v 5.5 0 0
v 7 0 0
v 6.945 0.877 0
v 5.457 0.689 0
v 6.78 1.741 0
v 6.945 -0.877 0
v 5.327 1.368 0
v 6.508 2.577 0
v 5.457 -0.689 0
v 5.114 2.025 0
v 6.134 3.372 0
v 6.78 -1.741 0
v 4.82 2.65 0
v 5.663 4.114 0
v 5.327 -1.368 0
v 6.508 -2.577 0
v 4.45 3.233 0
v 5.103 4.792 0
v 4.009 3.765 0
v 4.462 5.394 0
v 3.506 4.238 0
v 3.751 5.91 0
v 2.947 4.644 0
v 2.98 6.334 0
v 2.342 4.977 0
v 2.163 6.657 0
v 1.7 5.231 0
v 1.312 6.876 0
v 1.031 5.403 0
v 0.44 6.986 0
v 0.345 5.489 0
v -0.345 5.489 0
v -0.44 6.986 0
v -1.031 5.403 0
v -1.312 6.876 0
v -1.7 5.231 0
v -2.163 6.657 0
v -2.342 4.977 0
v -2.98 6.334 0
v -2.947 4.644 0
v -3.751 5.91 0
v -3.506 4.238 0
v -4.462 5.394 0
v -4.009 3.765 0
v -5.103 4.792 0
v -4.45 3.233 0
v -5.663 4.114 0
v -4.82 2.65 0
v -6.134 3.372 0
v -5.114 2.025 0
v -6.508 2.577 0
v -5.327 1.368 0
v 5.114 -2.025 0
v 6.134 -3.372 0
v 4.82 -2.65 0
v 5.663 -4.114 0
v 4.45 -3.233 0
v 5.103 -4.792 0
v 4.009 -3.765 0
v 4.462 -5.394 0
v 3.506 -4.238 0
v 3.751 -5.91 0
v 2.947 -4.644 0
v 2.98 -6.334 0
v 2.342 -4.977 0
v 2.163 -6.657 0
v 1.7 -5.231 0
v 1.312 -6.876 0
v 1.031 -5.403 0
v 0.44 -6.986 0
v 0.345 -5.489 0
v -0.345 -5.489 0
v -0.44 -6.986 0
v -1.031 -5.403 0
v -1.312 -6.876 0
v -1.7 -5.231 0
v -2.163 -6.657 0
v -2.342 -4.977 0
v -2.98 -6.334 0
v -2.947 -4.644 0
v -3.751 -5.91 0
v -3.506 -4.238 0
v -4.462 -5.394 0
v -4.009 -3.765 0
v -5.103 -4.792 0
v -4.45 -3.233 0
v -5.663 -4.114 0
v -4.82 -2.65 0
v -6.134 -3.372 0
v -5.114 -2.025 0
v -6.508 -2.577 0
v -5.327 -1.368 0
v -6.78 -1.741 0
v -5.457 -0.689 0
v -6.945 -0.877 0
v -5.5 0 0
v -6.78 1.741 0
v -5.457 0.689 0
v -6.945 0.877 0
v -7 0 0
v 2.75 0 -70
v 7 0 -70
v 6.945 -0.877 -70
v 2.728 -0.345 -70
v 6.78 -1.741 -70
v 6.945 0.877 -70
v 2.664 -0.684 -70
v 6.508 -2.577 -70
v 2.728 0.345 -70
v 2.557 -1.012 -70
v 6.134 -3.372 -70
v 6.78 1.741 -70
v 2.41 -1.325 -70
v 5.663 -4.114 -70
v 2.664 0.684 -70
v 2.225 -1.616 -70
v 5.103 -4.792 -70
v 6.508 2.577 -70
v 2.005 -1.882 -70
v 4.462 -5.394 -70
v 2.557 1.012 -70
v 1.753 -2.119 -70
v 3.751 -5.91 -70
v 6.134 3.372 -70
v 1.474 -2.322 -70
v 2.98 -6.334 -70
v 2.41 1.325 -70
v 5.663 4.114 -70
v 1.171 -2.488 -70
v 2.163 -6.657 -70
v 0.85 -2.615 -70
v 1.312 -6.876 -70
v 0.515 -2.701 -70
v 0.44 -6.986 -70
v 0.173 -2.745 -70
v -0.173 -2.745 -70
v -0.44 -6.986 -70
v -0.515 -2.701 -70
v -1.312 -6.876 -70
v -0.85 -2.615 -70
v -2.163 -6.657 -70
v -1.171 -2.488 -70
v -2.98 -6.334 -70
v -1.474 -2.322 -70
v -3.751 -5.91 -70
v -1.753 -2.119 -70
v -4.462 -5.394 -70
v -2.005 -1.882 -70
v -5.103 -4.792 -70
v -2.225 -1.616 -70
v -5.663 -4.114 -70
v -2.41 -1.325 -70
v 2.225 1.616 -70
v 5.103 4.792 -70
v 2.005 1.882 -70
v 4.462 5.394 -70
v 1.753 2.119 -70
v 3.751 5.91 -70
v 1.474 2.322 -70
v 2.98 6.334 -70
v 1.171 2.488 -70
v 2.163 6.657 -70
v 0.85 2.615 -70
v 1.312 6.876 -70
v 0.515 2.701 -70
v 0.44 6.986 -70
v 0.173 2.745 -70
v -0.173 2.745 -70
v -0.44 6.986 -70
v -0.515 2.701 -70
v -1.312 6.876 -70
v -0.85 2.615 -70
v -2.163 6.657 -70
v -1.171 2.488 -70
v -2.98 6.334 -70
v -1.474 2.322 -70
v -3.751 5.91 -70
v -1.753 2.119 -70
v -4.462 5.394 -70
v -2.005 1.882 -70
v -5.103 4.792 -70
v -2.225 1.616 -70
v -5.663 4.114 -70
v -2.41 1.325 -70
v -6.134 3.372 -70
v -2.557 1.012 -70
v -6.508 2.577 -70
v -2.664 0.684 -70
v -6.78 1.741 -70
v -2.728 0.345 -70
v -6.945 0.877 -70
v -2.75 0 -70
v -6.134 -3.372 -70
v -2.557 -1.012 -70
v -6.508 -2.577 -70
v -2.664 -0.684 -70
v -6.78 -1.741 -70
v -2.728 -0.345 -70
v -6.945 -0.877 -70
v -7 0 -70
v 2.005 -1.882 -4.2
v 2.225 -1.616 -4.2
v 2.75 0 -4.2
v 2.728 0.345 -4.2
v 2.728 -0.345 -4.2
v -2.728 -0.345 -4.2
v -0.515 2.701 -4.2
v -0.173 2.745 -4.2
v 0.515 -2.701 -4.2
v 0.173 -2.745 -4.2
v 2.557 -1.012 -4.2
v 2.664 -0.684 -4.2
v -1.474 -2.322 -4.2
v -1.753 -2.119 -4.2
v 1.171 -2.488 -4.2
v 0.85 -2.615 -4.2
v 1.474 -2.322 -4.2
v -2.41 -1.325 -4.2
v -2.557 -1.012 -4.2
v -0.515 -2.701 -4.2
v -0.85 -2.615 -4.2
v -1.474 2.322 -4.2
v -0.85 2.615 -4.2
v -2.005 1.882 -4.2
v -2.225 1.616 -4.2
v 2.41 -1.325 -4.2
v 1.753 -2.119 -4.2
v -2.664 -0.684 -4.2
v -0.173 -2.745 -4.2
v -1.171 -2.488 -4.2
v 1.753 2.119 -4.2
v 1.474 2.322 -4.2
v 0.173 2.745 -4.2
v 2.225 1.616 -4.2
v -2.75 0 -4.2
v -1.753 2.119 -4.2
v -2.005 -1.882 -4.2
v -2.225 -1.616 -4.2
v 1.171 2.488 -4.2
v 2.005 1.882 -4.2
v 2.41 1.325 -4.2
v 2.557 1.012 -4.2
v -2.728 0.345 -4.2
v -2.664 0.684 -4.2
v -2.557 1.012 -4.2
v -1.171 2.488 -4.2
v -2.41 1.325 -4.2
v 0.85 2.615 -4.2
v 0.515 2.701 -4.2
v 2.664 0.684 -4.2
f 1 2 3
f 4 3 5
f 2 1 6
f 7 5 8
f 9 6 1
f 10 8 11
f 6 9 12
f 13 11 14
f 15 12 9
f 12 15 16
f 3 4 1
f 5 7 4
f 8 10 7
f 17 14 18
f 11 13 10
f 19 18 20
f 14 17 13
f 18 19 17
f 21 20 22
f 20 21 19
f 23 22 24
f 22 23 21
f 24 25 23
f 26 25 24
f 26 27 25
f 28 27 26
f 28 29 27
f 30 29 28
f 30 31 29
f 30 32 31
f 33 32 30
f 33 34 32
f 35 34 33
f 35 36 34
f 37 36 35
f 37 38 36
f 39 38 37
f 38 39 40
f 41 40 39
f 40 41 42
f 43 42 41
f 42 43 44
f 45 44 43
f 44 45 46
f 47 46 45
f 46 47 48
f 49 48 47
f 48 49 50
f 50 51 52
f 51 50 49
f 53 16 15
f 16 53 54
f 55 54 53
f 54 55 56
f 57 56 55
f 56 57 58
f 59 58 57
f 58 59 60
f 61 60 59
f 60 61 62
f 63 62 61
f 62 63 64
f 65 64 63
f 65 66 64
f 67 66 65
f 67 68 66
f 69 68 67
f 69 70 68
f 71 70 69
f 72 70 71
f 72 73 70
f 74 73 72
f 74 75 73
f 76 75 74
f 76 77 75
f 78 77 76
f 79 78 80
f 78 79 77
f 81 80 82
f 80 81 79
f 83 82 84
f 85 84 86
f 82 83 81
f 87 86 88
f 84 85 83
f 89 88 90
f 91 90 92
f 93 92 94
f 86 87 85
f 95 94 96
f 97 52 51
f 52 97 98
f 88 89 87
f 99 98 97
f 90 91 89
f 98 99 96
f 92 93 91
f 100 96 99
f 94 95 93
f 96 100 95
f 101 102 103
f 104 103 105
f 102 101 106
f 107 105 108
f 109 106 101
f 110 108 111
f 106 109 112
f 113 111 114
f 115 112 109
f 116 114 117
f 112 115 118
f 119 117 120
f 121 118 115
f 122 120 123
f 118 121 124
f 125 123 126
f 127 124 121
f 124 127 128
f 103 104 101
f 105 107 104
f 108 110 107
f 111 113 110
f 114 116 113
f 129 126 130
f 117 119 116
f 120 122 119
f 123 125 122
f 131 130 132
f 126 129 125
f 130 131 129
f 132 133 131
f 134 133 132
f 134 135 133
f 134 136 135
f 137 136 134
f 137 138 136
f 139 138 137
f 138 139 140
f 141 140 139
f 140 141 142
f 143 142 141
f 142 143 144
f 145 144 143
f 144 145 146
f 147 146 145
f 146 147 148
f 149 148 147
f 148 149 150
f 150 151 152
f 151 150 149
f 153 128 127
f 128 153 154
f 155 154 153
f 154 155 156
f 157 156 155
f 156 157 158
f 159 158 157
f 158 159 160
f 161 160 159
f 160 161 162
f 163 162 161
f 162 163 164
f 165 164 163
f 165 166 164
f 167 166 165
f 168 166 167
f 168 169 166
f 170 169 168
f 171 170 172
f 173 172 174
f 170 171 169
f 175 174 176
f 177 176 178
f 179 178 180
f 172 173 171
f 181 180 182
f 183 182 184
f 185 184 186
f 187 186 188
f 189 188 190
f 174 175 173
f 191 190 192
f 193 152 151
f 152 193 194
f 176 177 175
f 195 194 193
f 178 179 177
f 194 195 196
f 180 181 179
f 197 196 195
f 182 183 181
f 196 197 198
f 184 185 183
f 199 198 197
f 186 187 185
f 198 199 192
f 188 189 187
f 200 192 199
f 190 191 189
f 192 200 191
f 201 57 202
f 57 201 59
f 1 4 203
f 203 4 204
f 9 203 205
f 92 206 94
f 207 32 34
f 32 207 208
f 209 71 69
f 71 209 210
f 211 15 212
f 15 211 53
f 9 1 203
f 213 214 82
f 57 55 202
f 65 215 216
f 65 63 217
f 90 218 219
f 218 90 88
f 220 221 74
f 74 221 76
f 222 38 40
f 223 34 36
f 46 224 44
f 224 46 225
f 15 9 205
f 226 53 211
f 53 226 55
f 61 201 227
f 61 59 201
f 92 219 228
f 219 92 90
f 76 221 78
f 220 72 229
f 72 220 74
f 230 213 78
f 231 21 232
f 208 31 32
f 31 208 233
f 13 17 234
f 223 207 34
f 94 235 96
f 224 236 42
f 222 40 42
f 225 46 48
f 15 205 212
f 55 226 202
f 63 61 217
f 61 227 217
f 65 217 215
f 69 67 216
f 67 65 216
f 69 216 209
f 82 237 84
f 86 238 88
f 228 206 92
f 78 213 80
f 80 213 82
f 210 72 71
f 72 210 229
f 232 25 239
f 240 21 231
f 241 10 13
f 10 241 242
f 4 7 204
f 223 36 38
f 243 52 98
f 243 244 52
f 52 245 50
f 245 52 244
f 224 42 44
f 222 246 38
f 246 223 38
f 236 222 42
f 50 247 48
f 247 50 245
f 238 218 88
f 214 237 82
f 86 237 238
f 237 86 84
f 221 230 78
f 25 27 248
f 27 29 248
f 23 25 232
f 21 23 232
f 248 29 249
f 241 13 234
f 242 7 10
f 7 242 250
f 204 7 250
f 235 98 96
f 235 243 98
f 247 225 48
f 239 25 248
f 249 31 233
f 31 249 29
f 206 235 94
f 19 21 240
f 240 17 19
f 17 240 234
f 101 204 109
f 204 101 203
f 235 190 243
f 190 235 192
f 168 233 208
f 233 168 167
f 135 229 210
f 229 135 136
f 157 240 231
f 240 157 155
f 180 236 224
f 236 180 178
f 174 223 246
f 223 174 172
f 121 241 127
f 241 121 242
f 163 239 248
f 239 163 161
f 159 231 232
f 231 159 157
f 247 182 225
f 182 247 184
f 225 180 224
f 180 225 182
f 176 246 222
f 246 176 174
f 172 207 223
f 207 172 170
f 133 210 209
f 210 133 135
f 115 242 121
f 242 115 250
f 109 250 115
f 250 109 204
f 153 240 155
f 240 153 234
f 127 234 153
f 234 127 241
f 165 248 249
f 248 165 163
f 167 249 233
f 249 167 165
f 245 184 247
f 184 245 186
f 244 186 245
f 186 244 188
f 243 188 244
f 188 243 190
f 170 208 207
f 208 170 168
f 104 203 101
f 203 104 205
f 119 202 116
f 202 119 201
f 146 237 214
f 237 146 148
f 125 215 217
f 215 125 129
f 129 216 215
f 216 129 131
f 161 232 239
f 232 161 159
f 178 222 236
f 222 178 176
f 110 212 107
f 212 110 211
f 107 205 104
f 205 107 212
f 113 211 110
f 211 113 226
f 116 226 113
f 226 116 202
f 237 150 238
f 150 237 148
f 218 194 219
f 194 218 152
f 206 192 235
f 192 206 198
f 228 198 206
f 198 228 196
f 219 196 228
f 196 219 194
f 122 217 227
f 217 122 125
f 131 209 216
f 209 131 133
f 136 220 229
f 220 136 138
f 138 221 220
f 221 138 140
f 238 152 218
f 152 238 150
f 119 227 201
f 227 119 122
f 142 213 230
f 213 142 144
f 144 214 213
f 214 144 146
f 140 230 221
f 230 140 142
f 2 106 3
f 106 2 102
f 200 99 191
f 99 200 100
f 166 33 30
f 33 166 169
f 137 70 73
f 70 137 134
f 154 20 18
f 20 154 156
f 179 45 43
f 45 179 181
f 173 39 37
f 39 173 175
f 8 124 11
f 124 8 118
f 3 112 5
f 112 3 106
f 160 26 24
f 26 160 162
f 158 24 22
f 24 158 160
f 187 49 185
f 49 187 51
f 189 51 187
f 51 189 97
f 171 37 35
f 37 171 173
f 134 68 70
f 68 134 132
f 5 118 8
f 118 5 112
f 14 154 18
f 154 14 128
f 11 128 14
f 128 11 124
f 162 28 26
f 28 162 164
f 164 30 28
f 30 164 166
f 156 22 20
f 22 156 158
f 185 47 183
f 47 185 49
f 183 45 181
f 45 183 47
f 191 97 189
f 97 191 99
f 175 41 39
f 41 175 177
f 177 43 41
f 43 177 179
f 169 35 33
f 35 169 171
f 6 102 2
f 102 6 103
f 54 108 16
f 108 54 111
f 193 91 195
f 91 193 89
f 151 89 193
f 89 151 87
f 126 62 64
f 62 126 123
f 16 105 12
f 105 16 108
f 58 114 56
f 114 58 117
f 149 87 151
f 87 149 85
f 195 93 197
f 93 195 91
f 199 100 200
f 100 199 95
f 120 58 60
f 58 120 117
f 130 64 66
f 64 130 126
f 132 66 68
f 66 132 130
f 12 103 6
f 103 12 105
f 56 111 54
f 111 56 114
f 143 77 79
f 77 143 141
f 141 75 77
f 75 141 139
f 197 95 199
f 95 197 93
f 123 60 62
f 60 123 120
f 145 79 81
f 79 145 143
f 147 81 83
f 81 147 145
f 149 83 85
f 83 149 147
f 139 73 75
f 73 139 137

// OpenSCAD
$fn = 50;


difference() {
	union() {
		translate(v = [0, 0, -70.0000000000]) {
			cylinder(h = 70, r = 7.0000000000);
		}
		cylinder(h = 0, r = 16.0000000000);
	}
	union() {
		translate(v = [0, 0, 0]) {
			rotate(a = [0, 0, 0]) {
				difference() {
					union() {
						#translate(v = [0, 0, -70.0000000000]) {
							cylinder(h = 70, r = 2.2500000000);
						}
						#translate(v = [0, 0, -4.2000000000]) {
							cylinder(h = 4.2000000000, r1 = 2.7500000000, r2 = 5.5000000000);
						}
						#translate(v = [0, 0, -70.0000000000]) {
							cylinder(h = 70, r = 2.7500000000);
						}
						#translate(v = [0, 0, -70.0000000000]) {
							cylinder(h = 70, r = 2.2500000000);
						}
					}
					union();
				}
			}
		}
	}
}
